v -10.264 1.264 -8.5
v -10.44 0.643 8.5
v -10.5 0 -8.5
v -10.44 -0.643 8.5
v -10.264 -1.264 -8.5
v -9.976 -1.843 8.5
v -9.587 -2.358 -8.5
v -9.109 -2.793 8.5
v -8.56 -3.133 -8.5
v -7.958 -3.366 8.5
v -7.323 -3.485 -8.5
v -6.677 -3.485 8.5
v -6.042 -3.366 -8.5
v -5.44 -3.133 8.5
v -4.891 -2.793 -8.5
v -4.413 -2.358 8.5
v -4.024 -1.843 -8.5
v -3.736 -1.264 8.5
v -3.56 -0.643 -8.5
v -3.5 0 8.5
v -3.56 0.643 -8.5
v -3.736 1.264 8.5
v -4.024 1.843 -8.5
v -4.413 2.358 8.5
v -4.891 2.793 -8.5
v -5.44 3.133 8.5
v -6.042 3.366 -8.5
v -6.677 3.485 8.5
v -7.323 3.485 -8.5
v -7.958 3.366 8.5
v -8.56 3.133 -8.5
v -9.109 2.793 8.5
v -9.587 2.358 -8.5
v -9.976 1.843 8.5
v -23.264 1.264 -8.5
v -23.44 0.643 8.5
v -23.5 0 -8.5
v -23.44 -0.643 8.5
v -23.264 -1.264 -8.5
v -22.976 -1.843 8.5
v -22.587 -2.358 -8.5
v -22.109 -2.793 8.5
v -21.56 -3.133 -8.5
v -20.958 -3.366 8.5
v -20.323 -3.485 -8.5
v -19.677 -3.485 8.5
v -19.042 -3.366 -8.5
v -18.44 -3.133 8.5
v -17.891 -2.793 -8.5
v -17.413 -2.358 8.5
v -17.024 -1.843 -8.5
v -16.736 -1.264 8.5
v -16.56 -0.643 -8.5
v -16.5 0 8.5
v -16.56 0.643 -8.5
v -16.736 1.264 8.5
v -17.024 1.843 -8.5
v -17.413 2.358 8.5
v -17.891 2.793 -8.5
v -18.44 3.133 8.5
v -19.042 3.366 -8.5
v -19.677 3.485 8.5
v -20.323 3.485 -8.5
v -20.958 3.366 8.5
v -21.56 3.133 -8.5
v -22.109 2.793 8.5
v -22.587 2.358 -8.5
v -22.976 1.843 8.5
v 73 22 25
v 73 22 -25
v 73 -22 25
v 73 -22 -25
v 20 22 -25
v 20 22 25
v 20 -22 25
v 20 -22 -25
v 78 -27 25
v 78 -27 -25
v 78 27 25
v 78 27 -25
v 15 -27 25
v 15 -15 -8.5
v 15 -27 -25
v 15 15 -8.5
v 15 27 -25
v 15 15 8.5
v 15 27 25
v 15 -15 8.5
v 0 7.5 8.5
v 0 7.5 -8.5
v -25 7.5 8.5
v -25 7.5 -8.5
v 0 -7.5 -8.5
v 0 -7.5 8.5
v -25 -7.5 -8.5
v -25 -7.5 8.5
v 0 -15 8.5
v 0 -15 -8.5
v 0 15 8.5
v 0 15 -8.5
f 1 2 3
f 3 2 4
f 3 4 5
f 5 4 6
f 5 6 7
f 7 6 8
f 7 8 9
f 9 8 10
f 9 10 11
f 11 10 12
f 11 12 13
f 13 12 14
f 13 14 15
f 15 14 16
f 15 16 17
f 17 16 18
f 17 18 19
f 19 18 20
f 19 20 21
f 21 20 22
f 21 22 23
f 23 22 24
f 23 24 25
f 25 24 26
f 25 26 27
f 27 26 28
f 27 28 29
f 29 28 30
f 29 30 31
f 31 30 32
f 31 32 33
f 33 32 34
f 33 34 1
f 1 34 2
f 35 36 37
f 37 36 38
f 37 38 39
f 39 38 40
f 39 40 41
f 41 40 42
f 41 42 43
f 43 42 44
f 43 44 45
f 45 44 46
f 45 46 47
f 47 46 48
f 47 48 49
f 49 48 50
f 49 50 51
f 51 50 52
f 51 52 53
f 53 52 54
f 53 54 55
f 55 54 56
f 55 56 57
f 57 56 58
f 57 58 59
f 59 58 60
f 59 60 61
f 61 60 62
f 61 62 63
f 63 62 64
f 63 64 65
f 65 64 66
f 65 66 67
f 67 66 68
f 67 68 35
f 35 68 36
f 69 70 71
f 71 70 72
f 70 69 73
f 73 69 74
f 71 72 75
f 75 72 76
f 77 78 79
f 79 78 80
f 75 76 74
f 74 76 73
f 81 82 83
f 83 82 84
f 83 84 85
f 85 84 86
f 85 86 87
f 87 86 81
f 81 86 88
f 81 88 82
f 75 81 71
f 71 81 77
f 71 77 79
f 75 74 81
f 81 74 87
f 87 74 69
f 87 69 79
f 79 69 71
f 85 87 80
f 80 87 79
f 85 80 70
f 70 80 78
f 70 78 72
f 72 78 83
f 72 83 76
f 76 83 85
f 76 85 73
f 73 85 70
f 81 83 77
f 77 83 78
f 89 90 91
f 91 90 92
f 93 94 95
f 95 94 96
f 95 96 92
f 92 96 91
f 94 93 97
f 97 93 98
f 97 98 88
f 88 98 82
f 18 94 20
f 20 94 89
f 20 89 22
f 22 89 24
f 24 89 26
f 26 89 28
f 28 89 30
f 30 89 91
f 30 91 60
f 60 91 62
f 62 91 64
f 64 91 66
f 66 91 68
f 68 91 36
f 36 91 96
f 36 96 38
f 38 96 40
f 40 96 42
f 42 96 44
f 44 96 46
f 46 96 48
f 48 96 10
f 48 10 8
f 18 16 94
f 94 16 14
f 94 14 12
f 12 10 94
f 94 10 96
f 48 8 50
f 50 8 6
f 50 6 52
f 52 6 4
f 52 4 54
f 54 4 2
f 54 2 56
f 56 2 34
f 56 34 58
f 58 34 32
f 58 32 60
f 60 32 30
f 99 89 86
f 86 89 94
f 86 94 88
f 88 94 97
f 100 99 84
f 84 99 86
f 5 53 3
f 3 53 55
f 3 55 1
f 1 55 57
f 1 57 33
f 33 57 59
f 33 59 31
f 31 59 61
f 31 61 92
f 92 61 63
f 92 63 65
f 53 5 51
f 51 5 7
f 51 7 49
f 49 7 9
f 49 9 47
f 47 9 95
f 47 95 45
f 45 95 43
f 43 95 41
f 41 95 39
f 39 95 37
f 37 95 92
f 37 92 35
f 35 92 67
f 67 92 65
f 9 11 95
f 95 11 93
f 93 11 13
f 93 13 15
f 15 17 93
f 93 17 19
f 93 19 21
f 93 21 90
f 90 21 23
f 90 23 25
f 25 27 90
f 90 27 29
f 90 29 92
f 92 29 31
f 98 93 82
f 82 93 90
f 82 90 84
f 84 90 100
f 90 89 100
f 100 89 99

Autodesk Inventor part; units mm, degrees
ref_plane "YZ Plane" through (0, 0, 0) normal (1, 0, 0) x (0, 1, 0)
ref_plane "XZ Plane" through (0, 0, 0) normal (0, 1, 0) x (-1, 0, 0)
ref_plane "XY Plane" through (0, 0, 0) normal (0, 0, 1) x (1, 0, 0)
sketch "Sketch1" plane through (0, 0, 0) normal (1, 0, 0) x (0, 1, 0)
  line L0 (-15, 8.5) -> (15, 8.5)
  line L1 (15, 8.5) -> (15, -8.5)
  line L2 (15, -8.5) -> (-15, -8.5)
  line L3 (-15, -8.5) -> (-15, 8.5)
  line L4 (-15, 8.5) -> (15, -8.5) construction
  line L5 (15, 8.5) -> (-15, -8.5) construction
  point P0 (0, 0)
  dimension "d0" = 30
  dimension "d1" = 17
extrude "Extrusion1" add sketch "Sketch1" along normal blind 15
sketch "Sketch2" plane through (0, 0, 0) normal (-1, 0, 0) x (0, 0, 1)
  line L0 (-8.5, 7.5) -> (8.5, 7.5)
  line L1 (8.5, 7.5) -> (8.5, -7.5)
  line L2 (8.5, -7.5) -> (-8.5, -7.5)
  line L3 (-8.5, -7.5) -> (-8.5, 7.5)
  line L4 (-8.5, 7.5) -> (8.5, -7.5) construction
  line L5 (8.5, 7.5) -> (-8.5, -7.5) construction
  point P0 (0, 0)
  dimension "d4" = 17
  dimension "d5" = 15
extrude "Extrusion2" add sketch "Sketch2" along normal blind 25
sketch "Sketch3" plane through (15, 0, 0) normal (1, 0, 0) x (0, 0, -1)
  line L0 (-25, 27) -> (25, 27)
  line L1 (25, 27) -> (25, -27)
  line L2 (25, -27) -> (-25, -27)
  line L3 (-25, -27) -> (-25, 27)
  line L4 (-25, 27) -> (25, -27) construction
  line L5 (25, 27) -> (-25, -27) construction
  point P0 (0, 0)
  dimension "d8" = 50
  dimension "d9" = 54
extrude "Extrusion3" add sketch "Sketch3" along normal blind 5
sketch "Sketch4" plane through (20, 0, 0) normal (1, 0, 0) x (0, 0, -1)
  line L0 (-25, 27) -> (-25, -27) projected
  line L1 (-25, 27) -> (25, 27)
  line L2 (25, 27) -> (25, 22)
  line L3 (25, 22) -> (-25, 22)
  line L4 (-25, 22) -> (-25, 27)
  line L5 (-25, -27) -> (25, -27) projected
  line L6 (-25, -27) -> (25, -27)
  line L7 (25, -27) -> (25, -22)
  line L8 (25, -22) -> (-25, -22)
  line L9 (-25, -22) -> (-25, -27)
  point P0 (0, 0)
  dimension "d12" = 50
  dimension "d13" = 5
  dimension "d14" = 50
  dimension "d15" = 5
extrude "Extrusion4" add sketch "Sketch4" along normal blind 58
sketch "Sketch5" plane through (20, -22, 25) normal (0, 1, 0) x (1, 0, 0)
  line L0 (0, 50) -> (58, 50) projected
  line L1 (0, 0) -> (58, 0) projected
  line L2 (58, 50) -> (53, 50)
  line L3 (53, 50) -> (53, 0)
  line L4 (53, 0) -> (58, 0)
  line L5 (58, 0) -> (58, 50)
  point P0 (-20, 25)
  dimension "d18" = 5
extrude "Extrusion5" add sketch "Sketch5" along normal blind 45
sketch "Sketch6" plane through (15, -27, 25) normal (0, 0, 1) x (1, 0, 0)
  point P0 (-15, 27)
sketch "Sketch7" plane through (0, 7.5, 8.5) normal (0, 0, 1) x (1, 0, 0)
  line L0 (-25, 0) -> (-25, -15) projected
  line L1 (-25, -7.5) -> (-20, -7.5)
  line L2 (0, -7.5) -> (-7, -7.5)
  circle A0 centre (-7, -7.5) radius 3.5
  circle A1 centre (-20, -7.5) radius 3.5
  dimension "d21" = 5
  dimension "d22" = 7
  dimension "d23" = 7
  dimension "d24" = 7
extrude "Extrusion6" cut sketch "Sketch7" against normal through all
sketch "Sketch8" plane through (0, -15, -8.5) normal (0, 0, -1) x (-1, 0, 0)
  point P0 (0, 15)
properties part number "Upper_battery"
